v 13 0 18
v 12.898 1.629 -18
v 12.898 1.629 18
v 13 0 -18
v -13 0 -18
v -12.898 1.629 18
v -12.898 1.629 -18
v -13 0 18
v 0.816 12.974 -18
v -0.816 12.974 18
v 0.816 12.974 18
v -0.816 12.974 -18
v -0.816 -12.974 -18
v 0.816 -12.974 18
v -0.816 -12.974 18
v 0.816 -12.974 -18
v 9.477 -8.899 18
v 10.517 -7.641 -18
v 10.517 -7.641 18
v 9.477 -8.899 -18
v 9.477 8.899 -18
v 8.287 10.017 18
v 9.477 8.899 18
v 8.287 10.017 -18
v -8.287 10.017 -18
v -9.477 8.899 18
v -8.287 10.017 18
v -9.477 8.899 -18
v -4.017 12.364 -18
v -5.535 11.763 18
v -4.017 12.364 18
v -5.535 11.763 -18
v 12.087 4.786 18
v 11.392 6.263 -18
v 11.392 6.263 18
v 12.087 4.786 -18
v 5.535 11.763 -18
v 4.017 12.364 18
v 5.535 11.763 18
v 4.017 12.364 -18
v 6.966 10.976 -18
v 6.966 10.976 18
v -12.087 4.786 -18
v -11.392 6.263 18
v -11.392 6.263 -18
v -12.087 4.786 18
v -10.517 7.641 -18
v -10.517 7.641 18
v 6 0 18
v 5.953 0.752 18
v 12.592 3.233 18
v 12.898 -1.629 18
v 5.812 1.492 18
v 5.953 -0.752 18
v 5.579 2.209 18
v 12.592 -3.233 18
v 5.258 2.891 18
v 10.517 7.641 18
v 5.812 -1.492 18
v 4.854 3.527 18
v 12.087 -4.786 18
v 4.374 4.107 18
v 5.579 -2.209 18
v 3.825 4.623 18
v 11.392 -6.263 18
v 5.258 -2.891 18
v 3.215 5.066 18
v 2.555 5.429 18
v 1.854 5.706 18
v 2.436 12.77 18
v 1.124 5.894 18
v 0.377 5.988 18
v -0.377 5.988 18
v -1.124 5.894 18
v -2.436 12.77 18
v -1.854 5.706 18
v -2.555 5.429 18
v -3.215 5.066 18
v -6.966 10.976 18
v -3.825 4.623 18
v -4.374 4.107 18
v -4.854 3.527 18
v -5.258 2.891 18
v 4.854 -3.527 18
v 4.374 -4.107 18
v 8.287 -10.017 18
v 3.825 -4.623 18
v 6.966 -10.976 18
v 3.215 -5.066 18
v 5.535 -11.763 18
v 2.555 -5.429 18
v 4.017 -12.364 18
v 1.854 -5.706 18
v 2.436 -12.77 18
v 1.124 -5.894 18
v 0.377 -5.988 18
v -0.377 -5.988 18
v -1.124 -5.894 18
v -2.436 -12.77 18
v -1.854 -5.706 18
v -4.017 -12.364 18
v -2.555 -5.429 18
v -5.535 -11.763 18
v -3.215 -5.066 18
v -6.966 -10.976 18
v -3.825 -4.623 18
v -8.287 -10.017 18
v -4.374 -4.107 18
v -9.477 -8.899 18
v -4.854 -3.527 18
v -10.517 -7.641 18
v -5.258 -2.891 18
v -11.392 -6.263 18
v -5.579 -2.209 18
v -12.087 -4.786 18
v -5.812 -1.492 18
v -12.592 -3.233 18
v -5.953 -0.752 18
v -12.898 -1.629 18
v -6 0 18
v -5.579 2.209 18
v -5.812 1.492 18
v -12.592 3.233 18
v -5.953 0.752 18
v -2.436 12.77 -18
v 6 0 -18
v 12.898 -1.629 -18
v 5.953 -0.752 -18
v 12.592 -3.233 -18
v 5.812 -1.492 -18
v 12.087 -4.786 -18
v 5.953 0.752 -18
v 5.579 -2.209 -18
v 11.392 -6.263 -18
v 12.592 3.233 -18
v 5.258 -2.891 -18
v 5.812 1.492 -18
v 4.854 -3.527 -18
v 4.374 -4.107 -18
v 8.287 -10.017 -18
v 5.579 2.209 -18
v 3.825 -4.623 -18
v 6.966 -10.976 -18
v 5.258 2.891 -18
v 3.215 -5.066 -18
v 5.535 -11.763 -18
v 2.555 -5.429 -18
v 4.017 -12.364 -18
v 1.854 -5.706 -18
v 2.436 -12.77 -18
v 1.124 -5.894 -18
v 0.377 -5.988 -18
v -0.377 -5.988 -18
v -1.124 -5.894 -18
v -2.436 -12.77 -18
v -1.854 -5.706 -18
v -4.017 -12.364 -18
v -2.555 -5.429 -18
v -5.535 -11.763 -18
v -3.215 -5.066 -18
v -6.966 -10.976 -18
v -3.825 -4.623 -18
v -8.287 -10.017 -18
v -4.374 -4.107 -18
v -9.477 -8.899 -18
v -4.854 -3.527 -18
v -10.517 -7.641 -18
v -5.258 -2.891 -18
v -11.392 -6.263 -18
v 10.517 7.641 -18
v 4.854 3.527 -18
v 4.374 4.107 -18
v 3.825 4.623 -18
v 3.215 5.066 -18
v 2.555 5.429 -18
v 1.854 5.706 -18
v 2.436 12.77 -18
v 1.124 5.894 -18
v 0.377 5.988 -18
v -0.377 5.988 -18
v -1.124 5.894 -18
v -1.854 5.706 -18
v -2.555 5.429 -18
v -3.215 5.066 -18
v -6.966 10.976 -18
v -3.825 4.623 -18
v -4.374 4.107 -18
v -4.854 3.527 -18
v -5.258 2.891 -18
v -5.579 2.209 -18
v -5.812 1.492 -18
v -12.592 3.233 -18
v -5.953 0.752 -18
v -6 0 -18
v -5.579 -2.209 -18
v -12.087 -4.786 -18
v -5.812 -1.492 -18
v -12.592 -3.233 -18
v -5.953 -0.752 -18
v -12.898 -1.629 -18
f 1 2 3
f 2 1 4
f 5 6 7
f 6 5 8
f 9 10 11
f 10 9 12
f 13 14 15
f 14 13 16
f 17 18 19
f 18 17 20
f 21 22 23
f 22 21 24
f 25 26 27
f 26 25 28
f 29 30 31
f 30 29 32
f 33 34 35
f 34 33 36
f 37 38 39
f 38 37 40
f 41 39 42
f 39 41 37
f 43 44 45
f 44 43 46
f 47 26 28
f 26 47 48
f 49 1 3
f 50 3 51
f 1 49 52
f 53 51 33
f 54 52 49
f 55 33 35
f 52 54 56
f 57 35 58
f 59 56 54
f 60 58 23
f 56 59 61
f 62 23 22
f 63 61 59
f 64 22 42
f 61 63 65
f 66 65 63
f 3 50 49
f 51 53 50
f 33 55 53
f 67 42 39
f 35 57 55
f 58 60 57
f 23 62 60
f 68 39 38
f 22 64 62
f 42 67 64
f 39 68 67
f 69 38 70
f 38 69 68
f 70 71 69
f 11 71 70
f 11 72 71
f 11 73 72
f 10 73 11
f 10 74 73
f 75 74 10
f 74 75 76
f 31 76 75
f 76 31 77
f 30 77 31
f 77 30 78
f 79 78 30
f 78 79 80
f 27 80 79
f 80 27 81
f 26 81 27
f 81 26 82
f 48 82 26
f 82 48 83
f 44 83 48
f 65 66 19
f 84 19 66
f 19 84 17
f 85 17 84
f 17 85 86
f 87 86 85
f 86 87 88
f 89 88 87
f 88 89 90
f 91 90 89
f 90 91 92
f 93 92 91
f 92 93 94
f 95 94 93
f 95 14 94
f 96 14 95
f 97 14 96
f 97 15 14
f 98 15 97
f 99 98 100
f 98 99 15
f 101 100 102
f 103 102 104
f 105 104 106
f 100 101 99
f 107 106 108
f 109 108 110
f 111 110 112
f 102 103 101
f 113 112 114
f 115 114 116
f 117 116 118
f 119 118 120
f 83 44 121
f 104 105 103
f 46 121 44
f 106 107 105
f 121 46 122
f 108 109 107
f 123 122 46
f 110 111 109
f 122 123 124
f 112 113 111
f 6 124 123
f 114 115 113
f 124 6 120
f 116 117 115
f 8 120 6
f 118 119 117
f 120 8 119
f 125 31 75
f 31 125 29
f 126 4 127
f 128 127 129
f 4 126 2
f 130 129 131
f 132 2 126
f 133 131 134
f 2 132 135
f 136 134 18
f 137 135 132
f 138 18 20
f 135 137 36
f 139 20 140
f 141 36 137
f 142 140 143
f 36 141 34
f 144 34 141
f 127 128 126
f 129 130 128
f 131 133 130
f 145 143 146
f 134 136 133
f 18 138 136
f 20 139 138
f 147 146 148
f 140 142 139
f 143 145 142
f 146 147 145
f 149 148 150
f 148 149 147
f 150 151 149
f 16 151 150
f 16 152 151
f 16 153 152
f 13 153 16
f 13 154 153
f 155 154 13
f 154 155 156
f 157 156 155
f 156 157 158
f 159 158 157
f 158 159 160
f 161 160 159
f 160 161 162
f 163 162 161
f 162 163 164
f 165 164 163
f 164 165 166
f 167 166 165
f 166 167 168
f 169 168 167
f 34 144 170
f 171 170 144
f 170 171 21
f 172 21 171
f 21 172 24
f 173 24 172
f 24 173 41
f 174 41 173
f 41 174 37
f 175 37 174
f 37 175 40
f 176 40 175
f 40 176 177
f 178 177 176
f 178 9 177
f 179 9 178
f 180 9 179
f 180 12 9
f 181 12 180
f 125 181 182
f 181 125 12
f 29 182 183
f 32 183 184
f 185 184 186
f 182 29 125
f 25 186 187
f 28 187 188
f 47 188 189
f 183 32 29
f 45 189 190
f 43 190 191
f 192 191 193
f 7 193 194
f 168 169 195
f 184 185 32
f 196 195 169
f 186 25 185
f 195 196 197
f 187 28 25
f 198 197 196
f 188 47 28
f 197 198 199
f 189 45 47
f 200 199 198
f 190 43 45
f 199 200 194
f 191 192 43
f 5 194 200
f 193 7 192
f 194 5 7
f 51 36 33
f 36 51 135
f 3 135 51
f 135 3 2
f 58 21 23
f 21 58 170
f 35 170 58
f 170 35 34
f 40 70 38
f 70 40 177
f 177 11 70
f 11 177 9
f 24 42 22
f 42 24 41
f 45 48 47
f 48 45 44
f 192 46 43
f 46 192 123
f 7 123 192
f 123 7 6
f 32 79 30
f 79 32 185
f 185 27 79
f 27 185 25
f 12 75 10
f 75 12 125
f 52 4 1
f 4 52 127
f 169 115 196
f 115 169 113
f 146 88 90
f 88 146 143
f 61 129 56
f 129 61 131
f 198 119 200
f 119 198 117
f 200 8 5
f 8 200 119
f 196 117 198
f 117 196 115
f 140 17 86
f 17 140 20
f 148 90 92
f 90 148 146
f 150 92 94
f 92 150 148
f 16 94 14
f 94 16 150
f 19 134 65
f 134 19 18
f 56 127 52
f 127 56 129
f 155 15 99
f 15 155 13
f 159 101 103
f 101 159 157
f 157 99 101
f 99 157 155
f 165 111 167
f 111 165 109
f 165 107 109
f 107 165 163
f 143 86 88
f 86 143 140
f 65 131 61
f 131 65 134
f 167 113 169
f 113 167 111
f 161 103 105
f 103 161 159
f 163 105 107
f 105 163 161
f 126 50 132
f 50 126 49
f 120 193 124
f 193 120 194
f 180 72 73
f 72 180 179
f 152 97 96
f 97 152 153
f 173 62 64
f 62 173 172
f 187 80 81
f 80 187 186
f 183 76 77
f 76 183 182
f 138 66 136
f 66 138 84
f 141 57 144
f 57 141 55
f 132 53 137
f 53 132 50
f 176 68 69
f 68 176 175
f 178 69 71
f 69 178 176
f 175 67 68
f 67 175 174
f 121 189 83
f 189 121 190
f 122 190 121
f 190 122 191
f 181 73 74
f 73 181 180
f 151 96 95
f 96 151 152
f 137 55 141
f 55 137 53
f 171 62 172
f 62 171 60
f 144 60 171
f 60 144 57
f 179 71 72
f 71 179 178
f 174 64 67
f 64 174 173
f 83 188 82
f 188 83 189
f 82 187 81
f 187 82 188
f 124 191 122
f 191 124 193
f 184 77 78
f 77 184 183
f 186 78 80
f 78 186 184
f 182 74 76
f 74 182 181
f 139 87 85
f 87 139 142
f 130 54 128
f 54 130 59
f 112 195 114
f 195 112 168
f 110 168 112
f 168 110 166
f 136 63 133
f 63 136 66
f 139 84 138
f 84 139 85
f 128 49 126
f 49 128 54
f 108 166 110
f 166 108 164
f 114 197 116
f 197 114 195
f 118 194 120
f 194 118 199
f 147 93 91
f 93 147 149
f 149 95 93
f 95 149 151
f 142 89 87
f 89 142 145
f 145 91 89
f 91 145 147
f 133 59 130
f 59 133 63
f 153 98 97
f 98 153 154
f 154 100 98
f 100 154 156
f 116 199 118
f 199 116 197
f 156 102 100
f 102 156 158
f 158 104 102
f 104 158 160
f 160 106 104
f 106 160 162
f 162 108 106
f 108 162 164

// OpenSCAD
$fn = 50;


difference() {
	union() {
		translate(v = [0, 0, -18.0000000000]) {
			cylinder(h = 36, r = 13.0000000000);
		}
	}
	union() {
		translate(v = [0, 0, -100.0000000000]) {
			cylinder(h = 200, r = 6);
		}
	}
}
